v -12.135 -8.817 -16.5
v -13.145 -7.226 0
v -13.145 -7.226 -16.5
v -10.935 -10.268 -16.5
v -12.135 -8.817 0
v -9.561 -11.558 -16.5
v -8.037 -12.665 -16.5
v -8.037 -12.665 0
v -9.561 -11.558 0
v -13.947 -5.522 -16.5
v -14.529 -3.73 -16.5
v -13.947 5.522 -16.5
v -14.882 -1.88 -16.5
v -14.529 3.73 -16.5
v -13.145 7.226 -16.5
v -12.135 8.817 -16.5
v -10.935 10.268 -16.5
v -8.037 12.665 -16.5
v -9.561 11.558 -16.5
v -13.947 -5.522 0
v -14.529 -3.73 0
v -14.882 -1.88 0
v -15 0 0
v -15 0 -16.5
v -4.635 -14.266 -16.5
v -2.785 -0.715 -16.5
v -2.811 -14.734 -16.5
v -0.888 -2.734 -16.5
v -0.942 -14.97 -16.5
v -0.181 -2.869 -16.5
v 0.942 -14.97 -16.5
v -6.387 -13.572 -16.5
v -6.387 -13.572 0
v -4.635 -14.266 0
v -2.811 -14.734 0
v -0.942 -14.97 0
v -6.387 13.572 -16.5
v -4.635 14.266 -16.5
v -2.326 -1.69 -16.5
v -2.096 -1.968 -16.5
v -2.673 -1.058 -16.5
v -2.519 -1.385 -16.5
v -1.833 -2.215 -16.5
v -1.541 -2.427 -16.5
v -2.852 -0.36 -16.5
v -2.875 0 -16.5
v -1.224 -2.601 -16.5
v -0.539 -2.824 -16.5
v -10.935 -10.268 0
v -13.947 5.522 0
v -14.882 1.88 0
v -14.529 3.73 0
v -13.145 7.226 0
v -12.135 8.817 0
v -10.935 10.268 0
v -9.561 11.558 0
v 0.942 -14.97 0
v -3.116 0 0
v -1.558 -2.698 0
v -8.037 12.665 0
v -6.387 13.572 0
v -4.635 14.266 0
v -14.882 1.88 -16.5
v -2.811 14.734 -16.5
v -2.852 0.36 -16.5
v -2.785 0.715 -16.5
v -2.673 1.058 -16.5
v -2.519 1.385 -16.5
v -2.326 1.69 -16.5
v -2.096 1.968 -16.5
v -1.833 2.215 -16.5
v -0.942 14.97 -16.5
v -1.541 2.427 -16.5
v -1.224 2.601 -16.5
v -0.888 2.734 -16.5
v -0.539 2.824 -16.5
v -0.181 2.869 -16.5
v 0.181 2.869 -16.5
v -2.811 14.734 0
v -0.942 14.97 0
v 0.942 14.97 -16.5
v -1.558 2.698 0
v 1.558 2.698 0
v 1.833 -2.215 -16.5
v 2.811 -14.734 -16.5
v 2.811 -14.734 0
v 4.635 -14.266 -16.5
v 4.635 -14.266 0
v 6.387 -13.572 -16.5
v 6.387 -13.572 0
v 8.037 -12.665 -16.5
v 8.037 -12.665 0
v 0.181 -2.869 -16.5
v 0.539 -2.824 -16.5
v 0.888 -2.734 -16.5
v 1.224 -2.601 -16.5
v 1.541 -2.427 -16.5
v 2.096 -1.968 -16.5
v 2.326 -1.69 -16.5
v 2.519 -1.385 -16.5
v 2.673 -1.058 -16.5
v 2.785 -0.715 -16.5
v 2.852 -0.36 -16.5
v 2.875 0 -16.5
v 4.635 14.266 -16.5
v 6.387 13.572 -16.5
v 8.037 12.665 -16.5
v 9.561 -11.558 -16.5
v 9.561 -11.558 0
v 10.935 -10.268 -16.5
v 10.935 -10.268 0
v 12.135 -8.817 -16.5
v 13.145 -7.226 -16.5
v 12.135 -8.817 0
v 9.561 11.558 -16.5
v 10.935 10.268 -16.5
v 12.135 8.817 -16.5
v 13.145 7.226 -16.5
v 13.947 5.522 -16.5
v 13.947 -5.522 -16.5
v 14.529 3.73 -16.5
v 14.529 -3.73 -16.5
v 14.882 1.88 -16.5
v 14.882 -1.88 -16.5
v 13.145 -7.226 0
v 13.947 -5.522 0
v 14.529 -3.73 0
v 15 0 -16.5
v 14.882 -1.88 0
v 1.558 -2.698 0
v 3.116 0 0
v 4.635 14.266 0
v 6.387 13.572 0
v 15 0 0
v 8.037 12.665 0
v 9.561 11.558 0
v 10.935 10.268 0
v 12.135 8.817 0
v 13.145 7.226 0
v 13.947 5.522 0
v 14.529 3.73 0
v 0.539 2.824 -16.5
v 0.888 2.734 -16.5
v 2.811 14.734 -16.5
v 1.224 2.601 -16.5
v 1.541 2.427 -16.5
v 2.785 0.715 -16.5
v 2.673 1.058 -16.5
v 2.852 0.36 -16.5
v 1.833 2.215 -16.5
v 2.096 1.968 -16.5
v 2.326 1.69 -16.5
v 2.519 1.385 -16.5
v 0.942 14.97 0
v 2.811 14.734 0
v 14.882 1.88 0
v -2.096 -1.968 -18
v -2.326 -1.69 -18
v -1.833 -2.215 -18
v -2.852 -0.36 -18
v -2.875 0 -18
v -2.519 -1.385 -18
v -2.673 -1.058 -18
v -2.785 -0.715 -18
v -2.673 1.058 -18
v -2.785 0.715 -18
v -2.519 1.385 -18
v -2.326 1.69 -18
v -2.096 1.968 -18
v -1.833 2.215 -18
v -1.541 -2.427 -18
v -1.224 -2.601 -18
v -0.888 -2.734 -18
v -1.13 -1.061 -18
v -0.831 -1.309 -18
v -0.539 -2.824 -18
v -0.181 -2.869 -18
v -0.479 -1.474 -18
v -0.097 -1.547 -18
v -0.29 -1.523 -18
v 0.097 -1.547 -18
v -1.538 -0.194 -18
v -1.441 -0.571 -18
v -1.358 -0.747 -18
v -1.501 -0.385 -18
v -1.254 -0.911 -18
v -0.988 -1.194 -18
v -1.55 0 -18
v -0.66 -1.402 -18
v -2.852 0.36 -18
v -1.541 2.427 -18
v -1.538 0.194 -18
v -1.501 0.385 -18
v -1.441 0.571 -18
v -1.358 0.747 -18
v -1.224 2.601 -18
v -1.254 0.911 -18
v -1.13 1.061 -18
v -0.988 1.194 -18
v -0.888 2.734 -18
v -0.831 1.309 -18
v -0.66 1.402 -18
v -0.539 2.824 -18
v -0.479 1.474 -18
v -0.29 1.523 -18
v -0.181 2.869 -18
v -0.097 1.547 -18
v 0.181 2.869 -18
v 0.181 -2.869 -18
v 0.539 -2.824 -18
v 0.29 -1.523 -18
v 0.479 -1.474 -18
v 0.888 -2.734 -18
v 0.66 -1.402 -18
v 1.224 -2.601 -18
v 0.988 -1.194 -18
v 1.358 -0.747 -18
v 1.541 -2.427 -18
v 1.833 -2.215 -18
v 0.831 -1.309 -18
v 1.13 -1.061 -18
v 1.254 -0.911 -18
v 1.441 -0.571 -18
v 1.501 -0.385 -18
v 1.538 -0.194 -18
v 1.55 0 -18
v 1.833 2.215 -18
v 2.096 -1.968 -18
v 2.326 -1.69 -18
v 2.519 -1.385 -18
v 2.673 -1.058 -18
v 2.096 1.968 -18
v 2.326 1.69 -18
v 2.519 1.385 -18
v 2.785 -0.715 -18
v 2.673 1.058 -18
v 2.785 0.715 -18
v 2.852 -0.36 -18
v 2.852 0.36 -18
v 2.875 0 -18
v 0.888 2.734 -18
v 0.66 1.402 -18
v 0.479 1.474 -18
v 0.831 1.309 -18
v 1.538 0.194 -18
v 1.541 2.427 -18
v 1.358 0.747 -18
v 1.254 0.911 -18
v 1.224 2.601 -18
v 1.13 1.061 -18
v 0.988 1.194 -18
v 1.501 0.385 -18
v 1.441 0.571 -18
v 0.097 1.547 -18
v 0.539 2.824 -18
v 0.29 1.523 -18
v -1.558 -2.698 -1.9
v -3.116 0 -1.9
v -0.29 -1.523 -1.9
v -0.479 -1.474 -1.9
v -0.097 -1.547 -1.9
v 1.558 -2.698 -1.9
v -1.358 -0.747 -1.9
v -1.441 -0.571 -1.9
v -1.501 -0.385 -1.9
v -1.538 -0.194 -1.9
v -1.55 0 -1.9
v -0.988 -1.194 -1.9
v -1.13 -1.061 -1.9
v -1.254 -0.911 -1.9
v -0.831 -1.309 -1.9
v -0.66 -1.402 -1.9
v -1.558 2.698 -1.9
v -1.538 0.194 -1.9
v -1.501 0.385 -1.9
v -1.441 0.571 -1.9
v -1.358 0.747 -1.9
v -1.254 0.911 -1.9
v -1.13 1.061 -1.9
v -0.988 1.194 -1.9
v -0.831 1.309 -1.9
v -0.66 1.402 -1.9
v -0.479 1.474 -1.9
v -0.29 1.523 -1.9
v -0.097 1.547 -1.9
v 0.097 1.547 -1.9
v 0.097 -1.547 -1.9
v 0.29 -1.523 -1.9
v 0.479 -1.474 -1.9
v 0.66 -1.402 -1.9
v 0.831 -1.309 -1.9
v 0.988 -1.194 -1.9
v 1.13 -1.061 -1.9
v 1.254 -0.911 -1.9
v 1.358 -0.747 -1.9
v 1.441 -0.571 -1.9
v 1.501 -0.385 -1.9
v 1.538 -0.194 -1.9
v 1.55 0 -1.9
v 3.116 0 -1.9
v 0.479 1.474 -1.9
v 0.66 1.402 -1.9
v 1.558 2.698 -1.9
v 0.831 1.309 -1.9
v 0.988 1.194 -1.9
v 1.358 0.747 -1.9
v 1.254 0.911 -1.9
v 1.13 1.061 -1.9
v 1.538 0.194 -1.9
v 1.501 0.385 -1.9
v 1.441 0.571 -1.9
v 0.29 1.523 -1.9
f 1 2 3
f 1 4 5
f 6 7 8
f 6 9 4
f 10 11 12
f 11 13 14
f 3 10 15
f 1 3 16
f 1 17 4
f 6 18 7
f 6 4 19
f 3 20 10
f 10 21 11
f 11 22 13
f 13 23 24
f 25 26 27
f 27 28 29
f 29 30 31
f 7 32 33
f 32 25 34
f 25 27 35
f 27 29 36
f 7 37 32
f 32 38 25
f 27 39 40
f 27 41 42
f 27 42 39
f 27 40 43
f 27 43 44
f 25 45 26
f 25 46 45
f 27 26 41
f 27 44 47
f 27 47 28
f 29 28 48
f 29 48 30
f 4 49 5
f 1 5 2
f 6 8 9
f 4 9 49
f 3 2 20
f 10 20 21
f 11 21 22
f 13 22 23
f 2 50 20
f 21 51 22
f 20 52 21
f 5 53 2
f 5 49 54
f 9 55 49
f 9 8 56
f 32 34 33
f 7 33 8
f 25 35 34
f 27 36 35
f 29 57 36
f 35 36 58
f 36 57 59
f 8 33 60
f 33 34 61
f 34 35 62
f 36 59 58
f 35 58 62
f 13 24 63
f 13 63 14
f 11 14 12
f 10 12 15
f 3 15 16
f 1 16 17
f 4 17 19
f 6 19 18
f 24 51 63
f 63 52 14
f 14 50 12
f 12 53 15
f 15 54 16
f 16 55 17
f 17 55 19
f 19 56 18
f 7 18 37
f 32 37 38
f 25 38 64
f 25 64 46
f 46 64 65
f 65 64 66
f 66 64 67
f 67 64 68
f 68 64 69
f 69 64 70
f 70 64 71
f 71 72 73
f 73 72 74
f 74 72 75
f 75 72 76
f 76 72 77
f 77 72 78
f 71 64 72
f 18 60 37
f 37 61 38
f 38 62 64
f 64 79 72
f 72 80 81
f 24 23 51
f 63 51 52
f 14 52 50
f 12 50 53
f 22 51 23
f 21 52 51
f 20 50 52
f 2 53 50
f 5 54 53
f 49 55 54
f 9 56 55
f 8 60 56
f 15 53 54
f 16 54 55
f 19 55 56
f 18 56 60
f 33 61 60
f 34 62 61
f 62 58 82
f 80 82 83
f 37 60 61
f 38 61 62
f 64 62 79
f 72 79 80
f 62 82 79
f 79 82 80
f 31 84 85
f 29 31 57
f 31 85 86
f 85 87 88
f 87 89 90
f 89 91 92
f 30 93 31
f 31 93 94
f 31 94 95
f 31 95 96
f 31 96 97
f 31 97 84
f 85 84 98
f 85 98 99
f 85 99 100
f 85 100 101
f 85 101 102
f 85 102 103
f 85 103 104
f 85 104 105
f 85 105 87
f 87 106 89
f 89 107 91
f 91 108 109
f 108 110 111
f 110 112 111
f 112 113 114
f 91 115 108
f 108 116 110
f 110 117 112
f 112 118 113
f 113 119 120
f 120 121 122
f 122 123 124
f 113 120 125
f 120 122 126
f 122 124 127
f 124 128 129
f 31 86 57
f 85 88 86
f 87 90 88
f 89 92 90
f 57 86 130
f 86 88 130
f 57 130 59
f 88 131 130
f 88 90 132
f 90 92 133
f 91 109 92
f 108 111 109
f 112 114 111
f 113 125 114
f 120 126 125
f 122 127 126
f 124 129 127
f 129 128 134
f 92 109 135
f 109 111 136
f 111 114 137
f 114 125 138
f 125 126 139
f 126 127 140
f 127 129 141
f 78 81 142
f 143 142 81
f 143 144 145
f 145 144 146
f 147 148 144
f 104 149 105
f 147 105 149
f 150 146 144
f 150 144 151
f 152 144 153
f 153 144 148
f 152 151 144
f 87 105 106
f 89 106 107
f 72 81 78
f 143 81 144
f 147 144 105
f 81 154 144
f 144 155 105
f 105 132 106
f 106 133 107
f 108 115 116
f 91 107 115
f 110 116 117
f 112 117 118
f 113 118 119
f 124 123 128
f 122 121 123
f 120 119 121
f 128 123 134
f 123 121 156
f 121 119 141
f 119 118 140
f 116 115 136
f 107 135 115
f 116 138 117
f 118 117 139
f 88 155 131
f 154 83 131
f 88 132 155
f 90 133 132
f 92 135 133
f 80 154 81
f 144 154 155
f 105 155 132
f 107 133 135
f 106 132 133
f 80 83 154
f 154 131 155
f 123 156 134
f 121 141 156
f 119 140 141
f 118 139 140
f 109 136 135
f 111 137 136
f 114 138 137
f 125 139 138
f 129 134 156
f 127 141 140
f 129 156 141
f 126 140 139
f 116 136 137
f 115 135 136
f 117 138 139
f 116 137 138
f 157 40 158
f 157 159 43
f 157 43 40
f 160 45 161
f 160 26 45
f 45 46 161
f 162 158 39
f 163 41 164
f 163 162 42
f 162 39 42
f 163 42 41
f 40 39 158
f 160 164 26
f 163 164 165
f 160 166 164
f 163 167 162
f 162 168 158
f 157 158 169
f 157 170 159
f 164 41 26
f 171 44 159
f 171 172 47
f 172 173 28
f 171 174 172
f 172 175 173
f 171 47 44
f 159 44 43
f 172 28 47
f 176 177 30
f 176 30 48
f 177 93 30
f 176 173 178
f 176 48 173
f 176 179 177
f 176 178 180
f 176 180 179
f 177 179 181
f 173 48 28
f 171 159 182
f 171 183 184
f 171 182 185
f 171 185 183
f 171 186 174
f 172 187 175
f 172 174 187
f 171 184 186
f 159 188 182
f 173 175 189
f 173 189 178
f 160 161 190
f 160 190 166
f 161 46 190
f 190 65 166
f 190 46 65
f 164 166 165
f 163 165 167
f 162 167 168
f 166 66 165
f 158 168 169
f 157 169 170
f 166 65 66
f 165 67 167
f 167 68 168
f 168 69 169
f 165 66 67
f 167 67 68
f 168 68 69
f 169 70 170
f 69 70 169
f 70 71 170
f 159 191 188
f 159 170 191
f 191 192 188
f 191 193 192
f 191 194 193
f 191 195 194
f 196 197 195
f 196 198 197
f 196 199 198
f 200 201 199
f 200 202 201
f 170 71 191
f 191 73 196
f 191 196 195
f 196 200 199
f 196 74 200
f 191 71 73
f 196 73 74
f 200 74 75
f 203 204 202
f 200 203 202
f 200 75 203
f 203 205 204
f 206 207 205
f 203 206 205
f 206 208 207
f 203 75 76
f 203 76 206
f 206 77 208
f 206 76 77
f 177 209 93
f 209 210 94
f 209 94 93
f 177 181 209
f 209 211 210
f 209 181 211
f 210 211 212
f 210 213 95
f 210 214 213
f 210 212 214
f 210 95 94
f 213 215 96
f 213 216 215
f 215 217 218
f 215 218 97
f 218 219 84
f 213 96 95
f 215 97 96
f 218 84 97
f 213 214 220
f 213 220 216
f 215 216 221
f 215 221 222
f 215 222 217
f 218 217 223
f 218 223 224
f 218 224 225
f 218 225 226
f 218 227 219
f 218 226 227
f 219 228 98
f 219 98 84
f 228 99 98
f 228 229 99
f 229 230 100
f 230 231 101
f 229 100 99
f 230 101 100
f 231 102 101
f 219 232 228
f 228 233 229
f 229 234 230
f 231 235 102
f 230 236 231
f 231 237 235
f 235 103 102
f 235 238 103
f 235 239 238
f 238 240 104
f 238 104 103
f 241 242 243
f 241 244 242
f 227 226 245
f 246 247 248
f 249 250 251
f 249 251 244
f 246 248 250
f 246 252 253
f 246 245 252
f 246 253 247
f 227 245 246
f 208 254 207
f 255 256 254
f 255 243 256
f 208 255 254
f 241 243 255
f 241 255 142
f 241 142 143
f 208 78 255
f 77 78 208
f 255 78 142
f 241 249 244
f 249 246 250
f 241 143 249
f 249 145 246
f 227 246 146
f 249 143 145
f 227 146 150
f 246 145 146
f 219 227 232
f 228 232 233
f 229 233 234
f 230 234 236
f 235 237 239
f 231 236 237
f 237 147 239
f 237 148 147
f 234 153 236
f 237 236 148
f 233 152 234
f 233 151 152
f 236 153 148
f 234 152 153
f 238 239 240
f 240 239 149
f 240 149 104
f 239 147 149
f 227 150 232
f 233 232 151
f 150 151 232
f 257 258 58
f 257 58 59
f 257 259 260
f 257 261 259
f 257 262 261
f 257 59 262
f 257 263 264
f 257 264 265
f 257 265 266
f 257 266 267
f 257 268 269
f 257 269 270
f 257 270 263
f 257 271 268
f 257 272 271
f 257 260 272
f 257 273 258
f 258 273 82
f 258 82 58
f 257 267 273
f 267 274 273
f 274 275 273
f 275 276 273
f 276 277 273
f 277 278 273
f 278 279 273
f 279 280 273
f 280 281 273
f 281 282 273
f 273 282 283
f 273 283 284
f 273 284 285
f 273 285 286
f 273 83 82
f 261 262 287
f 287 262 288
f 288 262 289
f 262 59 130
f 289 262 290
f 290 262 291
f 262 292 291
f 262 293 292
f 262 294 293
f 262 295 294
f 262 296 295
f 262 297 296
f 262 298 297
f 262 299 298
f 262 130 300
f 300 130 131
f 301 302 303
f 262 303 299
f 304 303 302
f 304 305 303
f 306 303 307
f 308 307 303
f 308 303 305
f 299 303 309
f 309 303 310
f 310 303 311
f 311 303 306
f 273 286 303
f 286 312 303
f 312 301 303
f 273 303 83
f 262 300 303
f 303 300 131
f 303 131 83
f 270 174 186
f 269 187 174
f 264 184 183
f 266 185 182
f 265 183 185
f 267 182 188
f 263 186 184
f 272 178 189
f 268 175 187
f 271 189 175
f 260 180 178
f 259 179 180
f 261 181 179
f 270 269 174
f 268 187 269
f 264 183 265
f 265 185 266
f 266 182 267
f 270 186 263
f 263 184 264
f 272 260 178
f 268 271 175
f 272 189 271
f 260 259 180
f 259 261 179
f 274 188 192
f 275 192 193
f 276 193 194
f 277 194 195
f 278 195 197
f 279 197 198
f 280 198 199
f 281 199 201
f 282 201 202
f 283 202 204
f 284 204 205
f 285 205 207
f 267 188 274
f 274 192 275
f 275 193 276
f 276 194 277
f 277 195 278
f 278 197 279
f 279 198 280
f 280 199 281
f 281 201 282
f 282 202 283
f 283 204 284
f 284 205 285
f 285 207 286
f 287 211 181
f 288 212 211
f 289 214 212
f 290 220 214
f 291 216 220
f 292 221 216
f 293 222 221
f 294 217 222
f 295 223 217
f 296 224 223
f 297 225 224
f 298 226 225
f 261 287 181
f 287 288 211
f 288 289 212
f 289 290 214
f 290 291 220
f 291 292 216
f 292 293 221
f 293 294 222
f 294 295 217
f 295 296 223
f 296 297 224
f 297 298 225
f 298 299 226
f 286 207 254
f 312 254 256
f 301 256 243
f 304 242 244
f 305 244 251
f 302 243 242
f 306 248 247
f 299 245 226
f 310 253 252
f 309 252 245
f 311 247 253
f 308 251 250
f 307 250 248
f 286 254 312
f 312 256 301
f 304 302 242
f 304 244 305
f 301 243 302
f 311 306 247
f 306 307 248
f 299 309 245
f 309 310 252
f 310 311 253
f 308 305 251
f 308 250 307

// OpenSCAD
$fn = 50;

difference() {
	union() {
		translate(v = [0, 0, -16.5]) {
			cylinder(h = 16.5, r = 15.0);
		}
		#translate(v = [0, 0, -18.0]) {
			cylinder(h = 18, r = 2.875);
		}
	}
	union() {
		translate(v = [0, 0, 0]) {
			rotate(a = [0, 0, 0]) {
				difference() {
					union() {
						translate(v = [0, 0, -1.9]) {
							linear_extrude(height = 1.9) {
								polygon(points = [[3.1158, 0.0], [1.5579000000000005, 2.698361953111554], [-1.5578999999999994, 2.6983619531115544], [-3.1158, 3.815754496783323e-16], [-1.5579000000000014, -2.6983619531115535], [1.557899999999998, -2.6983619531115552]]);
							}
						}
					}
					union();
				}
			}
		}
		#translate(v = [0, 0, -100.0]) {
			cylinder(h = 200, r = 1.55);
		}
	}
}
